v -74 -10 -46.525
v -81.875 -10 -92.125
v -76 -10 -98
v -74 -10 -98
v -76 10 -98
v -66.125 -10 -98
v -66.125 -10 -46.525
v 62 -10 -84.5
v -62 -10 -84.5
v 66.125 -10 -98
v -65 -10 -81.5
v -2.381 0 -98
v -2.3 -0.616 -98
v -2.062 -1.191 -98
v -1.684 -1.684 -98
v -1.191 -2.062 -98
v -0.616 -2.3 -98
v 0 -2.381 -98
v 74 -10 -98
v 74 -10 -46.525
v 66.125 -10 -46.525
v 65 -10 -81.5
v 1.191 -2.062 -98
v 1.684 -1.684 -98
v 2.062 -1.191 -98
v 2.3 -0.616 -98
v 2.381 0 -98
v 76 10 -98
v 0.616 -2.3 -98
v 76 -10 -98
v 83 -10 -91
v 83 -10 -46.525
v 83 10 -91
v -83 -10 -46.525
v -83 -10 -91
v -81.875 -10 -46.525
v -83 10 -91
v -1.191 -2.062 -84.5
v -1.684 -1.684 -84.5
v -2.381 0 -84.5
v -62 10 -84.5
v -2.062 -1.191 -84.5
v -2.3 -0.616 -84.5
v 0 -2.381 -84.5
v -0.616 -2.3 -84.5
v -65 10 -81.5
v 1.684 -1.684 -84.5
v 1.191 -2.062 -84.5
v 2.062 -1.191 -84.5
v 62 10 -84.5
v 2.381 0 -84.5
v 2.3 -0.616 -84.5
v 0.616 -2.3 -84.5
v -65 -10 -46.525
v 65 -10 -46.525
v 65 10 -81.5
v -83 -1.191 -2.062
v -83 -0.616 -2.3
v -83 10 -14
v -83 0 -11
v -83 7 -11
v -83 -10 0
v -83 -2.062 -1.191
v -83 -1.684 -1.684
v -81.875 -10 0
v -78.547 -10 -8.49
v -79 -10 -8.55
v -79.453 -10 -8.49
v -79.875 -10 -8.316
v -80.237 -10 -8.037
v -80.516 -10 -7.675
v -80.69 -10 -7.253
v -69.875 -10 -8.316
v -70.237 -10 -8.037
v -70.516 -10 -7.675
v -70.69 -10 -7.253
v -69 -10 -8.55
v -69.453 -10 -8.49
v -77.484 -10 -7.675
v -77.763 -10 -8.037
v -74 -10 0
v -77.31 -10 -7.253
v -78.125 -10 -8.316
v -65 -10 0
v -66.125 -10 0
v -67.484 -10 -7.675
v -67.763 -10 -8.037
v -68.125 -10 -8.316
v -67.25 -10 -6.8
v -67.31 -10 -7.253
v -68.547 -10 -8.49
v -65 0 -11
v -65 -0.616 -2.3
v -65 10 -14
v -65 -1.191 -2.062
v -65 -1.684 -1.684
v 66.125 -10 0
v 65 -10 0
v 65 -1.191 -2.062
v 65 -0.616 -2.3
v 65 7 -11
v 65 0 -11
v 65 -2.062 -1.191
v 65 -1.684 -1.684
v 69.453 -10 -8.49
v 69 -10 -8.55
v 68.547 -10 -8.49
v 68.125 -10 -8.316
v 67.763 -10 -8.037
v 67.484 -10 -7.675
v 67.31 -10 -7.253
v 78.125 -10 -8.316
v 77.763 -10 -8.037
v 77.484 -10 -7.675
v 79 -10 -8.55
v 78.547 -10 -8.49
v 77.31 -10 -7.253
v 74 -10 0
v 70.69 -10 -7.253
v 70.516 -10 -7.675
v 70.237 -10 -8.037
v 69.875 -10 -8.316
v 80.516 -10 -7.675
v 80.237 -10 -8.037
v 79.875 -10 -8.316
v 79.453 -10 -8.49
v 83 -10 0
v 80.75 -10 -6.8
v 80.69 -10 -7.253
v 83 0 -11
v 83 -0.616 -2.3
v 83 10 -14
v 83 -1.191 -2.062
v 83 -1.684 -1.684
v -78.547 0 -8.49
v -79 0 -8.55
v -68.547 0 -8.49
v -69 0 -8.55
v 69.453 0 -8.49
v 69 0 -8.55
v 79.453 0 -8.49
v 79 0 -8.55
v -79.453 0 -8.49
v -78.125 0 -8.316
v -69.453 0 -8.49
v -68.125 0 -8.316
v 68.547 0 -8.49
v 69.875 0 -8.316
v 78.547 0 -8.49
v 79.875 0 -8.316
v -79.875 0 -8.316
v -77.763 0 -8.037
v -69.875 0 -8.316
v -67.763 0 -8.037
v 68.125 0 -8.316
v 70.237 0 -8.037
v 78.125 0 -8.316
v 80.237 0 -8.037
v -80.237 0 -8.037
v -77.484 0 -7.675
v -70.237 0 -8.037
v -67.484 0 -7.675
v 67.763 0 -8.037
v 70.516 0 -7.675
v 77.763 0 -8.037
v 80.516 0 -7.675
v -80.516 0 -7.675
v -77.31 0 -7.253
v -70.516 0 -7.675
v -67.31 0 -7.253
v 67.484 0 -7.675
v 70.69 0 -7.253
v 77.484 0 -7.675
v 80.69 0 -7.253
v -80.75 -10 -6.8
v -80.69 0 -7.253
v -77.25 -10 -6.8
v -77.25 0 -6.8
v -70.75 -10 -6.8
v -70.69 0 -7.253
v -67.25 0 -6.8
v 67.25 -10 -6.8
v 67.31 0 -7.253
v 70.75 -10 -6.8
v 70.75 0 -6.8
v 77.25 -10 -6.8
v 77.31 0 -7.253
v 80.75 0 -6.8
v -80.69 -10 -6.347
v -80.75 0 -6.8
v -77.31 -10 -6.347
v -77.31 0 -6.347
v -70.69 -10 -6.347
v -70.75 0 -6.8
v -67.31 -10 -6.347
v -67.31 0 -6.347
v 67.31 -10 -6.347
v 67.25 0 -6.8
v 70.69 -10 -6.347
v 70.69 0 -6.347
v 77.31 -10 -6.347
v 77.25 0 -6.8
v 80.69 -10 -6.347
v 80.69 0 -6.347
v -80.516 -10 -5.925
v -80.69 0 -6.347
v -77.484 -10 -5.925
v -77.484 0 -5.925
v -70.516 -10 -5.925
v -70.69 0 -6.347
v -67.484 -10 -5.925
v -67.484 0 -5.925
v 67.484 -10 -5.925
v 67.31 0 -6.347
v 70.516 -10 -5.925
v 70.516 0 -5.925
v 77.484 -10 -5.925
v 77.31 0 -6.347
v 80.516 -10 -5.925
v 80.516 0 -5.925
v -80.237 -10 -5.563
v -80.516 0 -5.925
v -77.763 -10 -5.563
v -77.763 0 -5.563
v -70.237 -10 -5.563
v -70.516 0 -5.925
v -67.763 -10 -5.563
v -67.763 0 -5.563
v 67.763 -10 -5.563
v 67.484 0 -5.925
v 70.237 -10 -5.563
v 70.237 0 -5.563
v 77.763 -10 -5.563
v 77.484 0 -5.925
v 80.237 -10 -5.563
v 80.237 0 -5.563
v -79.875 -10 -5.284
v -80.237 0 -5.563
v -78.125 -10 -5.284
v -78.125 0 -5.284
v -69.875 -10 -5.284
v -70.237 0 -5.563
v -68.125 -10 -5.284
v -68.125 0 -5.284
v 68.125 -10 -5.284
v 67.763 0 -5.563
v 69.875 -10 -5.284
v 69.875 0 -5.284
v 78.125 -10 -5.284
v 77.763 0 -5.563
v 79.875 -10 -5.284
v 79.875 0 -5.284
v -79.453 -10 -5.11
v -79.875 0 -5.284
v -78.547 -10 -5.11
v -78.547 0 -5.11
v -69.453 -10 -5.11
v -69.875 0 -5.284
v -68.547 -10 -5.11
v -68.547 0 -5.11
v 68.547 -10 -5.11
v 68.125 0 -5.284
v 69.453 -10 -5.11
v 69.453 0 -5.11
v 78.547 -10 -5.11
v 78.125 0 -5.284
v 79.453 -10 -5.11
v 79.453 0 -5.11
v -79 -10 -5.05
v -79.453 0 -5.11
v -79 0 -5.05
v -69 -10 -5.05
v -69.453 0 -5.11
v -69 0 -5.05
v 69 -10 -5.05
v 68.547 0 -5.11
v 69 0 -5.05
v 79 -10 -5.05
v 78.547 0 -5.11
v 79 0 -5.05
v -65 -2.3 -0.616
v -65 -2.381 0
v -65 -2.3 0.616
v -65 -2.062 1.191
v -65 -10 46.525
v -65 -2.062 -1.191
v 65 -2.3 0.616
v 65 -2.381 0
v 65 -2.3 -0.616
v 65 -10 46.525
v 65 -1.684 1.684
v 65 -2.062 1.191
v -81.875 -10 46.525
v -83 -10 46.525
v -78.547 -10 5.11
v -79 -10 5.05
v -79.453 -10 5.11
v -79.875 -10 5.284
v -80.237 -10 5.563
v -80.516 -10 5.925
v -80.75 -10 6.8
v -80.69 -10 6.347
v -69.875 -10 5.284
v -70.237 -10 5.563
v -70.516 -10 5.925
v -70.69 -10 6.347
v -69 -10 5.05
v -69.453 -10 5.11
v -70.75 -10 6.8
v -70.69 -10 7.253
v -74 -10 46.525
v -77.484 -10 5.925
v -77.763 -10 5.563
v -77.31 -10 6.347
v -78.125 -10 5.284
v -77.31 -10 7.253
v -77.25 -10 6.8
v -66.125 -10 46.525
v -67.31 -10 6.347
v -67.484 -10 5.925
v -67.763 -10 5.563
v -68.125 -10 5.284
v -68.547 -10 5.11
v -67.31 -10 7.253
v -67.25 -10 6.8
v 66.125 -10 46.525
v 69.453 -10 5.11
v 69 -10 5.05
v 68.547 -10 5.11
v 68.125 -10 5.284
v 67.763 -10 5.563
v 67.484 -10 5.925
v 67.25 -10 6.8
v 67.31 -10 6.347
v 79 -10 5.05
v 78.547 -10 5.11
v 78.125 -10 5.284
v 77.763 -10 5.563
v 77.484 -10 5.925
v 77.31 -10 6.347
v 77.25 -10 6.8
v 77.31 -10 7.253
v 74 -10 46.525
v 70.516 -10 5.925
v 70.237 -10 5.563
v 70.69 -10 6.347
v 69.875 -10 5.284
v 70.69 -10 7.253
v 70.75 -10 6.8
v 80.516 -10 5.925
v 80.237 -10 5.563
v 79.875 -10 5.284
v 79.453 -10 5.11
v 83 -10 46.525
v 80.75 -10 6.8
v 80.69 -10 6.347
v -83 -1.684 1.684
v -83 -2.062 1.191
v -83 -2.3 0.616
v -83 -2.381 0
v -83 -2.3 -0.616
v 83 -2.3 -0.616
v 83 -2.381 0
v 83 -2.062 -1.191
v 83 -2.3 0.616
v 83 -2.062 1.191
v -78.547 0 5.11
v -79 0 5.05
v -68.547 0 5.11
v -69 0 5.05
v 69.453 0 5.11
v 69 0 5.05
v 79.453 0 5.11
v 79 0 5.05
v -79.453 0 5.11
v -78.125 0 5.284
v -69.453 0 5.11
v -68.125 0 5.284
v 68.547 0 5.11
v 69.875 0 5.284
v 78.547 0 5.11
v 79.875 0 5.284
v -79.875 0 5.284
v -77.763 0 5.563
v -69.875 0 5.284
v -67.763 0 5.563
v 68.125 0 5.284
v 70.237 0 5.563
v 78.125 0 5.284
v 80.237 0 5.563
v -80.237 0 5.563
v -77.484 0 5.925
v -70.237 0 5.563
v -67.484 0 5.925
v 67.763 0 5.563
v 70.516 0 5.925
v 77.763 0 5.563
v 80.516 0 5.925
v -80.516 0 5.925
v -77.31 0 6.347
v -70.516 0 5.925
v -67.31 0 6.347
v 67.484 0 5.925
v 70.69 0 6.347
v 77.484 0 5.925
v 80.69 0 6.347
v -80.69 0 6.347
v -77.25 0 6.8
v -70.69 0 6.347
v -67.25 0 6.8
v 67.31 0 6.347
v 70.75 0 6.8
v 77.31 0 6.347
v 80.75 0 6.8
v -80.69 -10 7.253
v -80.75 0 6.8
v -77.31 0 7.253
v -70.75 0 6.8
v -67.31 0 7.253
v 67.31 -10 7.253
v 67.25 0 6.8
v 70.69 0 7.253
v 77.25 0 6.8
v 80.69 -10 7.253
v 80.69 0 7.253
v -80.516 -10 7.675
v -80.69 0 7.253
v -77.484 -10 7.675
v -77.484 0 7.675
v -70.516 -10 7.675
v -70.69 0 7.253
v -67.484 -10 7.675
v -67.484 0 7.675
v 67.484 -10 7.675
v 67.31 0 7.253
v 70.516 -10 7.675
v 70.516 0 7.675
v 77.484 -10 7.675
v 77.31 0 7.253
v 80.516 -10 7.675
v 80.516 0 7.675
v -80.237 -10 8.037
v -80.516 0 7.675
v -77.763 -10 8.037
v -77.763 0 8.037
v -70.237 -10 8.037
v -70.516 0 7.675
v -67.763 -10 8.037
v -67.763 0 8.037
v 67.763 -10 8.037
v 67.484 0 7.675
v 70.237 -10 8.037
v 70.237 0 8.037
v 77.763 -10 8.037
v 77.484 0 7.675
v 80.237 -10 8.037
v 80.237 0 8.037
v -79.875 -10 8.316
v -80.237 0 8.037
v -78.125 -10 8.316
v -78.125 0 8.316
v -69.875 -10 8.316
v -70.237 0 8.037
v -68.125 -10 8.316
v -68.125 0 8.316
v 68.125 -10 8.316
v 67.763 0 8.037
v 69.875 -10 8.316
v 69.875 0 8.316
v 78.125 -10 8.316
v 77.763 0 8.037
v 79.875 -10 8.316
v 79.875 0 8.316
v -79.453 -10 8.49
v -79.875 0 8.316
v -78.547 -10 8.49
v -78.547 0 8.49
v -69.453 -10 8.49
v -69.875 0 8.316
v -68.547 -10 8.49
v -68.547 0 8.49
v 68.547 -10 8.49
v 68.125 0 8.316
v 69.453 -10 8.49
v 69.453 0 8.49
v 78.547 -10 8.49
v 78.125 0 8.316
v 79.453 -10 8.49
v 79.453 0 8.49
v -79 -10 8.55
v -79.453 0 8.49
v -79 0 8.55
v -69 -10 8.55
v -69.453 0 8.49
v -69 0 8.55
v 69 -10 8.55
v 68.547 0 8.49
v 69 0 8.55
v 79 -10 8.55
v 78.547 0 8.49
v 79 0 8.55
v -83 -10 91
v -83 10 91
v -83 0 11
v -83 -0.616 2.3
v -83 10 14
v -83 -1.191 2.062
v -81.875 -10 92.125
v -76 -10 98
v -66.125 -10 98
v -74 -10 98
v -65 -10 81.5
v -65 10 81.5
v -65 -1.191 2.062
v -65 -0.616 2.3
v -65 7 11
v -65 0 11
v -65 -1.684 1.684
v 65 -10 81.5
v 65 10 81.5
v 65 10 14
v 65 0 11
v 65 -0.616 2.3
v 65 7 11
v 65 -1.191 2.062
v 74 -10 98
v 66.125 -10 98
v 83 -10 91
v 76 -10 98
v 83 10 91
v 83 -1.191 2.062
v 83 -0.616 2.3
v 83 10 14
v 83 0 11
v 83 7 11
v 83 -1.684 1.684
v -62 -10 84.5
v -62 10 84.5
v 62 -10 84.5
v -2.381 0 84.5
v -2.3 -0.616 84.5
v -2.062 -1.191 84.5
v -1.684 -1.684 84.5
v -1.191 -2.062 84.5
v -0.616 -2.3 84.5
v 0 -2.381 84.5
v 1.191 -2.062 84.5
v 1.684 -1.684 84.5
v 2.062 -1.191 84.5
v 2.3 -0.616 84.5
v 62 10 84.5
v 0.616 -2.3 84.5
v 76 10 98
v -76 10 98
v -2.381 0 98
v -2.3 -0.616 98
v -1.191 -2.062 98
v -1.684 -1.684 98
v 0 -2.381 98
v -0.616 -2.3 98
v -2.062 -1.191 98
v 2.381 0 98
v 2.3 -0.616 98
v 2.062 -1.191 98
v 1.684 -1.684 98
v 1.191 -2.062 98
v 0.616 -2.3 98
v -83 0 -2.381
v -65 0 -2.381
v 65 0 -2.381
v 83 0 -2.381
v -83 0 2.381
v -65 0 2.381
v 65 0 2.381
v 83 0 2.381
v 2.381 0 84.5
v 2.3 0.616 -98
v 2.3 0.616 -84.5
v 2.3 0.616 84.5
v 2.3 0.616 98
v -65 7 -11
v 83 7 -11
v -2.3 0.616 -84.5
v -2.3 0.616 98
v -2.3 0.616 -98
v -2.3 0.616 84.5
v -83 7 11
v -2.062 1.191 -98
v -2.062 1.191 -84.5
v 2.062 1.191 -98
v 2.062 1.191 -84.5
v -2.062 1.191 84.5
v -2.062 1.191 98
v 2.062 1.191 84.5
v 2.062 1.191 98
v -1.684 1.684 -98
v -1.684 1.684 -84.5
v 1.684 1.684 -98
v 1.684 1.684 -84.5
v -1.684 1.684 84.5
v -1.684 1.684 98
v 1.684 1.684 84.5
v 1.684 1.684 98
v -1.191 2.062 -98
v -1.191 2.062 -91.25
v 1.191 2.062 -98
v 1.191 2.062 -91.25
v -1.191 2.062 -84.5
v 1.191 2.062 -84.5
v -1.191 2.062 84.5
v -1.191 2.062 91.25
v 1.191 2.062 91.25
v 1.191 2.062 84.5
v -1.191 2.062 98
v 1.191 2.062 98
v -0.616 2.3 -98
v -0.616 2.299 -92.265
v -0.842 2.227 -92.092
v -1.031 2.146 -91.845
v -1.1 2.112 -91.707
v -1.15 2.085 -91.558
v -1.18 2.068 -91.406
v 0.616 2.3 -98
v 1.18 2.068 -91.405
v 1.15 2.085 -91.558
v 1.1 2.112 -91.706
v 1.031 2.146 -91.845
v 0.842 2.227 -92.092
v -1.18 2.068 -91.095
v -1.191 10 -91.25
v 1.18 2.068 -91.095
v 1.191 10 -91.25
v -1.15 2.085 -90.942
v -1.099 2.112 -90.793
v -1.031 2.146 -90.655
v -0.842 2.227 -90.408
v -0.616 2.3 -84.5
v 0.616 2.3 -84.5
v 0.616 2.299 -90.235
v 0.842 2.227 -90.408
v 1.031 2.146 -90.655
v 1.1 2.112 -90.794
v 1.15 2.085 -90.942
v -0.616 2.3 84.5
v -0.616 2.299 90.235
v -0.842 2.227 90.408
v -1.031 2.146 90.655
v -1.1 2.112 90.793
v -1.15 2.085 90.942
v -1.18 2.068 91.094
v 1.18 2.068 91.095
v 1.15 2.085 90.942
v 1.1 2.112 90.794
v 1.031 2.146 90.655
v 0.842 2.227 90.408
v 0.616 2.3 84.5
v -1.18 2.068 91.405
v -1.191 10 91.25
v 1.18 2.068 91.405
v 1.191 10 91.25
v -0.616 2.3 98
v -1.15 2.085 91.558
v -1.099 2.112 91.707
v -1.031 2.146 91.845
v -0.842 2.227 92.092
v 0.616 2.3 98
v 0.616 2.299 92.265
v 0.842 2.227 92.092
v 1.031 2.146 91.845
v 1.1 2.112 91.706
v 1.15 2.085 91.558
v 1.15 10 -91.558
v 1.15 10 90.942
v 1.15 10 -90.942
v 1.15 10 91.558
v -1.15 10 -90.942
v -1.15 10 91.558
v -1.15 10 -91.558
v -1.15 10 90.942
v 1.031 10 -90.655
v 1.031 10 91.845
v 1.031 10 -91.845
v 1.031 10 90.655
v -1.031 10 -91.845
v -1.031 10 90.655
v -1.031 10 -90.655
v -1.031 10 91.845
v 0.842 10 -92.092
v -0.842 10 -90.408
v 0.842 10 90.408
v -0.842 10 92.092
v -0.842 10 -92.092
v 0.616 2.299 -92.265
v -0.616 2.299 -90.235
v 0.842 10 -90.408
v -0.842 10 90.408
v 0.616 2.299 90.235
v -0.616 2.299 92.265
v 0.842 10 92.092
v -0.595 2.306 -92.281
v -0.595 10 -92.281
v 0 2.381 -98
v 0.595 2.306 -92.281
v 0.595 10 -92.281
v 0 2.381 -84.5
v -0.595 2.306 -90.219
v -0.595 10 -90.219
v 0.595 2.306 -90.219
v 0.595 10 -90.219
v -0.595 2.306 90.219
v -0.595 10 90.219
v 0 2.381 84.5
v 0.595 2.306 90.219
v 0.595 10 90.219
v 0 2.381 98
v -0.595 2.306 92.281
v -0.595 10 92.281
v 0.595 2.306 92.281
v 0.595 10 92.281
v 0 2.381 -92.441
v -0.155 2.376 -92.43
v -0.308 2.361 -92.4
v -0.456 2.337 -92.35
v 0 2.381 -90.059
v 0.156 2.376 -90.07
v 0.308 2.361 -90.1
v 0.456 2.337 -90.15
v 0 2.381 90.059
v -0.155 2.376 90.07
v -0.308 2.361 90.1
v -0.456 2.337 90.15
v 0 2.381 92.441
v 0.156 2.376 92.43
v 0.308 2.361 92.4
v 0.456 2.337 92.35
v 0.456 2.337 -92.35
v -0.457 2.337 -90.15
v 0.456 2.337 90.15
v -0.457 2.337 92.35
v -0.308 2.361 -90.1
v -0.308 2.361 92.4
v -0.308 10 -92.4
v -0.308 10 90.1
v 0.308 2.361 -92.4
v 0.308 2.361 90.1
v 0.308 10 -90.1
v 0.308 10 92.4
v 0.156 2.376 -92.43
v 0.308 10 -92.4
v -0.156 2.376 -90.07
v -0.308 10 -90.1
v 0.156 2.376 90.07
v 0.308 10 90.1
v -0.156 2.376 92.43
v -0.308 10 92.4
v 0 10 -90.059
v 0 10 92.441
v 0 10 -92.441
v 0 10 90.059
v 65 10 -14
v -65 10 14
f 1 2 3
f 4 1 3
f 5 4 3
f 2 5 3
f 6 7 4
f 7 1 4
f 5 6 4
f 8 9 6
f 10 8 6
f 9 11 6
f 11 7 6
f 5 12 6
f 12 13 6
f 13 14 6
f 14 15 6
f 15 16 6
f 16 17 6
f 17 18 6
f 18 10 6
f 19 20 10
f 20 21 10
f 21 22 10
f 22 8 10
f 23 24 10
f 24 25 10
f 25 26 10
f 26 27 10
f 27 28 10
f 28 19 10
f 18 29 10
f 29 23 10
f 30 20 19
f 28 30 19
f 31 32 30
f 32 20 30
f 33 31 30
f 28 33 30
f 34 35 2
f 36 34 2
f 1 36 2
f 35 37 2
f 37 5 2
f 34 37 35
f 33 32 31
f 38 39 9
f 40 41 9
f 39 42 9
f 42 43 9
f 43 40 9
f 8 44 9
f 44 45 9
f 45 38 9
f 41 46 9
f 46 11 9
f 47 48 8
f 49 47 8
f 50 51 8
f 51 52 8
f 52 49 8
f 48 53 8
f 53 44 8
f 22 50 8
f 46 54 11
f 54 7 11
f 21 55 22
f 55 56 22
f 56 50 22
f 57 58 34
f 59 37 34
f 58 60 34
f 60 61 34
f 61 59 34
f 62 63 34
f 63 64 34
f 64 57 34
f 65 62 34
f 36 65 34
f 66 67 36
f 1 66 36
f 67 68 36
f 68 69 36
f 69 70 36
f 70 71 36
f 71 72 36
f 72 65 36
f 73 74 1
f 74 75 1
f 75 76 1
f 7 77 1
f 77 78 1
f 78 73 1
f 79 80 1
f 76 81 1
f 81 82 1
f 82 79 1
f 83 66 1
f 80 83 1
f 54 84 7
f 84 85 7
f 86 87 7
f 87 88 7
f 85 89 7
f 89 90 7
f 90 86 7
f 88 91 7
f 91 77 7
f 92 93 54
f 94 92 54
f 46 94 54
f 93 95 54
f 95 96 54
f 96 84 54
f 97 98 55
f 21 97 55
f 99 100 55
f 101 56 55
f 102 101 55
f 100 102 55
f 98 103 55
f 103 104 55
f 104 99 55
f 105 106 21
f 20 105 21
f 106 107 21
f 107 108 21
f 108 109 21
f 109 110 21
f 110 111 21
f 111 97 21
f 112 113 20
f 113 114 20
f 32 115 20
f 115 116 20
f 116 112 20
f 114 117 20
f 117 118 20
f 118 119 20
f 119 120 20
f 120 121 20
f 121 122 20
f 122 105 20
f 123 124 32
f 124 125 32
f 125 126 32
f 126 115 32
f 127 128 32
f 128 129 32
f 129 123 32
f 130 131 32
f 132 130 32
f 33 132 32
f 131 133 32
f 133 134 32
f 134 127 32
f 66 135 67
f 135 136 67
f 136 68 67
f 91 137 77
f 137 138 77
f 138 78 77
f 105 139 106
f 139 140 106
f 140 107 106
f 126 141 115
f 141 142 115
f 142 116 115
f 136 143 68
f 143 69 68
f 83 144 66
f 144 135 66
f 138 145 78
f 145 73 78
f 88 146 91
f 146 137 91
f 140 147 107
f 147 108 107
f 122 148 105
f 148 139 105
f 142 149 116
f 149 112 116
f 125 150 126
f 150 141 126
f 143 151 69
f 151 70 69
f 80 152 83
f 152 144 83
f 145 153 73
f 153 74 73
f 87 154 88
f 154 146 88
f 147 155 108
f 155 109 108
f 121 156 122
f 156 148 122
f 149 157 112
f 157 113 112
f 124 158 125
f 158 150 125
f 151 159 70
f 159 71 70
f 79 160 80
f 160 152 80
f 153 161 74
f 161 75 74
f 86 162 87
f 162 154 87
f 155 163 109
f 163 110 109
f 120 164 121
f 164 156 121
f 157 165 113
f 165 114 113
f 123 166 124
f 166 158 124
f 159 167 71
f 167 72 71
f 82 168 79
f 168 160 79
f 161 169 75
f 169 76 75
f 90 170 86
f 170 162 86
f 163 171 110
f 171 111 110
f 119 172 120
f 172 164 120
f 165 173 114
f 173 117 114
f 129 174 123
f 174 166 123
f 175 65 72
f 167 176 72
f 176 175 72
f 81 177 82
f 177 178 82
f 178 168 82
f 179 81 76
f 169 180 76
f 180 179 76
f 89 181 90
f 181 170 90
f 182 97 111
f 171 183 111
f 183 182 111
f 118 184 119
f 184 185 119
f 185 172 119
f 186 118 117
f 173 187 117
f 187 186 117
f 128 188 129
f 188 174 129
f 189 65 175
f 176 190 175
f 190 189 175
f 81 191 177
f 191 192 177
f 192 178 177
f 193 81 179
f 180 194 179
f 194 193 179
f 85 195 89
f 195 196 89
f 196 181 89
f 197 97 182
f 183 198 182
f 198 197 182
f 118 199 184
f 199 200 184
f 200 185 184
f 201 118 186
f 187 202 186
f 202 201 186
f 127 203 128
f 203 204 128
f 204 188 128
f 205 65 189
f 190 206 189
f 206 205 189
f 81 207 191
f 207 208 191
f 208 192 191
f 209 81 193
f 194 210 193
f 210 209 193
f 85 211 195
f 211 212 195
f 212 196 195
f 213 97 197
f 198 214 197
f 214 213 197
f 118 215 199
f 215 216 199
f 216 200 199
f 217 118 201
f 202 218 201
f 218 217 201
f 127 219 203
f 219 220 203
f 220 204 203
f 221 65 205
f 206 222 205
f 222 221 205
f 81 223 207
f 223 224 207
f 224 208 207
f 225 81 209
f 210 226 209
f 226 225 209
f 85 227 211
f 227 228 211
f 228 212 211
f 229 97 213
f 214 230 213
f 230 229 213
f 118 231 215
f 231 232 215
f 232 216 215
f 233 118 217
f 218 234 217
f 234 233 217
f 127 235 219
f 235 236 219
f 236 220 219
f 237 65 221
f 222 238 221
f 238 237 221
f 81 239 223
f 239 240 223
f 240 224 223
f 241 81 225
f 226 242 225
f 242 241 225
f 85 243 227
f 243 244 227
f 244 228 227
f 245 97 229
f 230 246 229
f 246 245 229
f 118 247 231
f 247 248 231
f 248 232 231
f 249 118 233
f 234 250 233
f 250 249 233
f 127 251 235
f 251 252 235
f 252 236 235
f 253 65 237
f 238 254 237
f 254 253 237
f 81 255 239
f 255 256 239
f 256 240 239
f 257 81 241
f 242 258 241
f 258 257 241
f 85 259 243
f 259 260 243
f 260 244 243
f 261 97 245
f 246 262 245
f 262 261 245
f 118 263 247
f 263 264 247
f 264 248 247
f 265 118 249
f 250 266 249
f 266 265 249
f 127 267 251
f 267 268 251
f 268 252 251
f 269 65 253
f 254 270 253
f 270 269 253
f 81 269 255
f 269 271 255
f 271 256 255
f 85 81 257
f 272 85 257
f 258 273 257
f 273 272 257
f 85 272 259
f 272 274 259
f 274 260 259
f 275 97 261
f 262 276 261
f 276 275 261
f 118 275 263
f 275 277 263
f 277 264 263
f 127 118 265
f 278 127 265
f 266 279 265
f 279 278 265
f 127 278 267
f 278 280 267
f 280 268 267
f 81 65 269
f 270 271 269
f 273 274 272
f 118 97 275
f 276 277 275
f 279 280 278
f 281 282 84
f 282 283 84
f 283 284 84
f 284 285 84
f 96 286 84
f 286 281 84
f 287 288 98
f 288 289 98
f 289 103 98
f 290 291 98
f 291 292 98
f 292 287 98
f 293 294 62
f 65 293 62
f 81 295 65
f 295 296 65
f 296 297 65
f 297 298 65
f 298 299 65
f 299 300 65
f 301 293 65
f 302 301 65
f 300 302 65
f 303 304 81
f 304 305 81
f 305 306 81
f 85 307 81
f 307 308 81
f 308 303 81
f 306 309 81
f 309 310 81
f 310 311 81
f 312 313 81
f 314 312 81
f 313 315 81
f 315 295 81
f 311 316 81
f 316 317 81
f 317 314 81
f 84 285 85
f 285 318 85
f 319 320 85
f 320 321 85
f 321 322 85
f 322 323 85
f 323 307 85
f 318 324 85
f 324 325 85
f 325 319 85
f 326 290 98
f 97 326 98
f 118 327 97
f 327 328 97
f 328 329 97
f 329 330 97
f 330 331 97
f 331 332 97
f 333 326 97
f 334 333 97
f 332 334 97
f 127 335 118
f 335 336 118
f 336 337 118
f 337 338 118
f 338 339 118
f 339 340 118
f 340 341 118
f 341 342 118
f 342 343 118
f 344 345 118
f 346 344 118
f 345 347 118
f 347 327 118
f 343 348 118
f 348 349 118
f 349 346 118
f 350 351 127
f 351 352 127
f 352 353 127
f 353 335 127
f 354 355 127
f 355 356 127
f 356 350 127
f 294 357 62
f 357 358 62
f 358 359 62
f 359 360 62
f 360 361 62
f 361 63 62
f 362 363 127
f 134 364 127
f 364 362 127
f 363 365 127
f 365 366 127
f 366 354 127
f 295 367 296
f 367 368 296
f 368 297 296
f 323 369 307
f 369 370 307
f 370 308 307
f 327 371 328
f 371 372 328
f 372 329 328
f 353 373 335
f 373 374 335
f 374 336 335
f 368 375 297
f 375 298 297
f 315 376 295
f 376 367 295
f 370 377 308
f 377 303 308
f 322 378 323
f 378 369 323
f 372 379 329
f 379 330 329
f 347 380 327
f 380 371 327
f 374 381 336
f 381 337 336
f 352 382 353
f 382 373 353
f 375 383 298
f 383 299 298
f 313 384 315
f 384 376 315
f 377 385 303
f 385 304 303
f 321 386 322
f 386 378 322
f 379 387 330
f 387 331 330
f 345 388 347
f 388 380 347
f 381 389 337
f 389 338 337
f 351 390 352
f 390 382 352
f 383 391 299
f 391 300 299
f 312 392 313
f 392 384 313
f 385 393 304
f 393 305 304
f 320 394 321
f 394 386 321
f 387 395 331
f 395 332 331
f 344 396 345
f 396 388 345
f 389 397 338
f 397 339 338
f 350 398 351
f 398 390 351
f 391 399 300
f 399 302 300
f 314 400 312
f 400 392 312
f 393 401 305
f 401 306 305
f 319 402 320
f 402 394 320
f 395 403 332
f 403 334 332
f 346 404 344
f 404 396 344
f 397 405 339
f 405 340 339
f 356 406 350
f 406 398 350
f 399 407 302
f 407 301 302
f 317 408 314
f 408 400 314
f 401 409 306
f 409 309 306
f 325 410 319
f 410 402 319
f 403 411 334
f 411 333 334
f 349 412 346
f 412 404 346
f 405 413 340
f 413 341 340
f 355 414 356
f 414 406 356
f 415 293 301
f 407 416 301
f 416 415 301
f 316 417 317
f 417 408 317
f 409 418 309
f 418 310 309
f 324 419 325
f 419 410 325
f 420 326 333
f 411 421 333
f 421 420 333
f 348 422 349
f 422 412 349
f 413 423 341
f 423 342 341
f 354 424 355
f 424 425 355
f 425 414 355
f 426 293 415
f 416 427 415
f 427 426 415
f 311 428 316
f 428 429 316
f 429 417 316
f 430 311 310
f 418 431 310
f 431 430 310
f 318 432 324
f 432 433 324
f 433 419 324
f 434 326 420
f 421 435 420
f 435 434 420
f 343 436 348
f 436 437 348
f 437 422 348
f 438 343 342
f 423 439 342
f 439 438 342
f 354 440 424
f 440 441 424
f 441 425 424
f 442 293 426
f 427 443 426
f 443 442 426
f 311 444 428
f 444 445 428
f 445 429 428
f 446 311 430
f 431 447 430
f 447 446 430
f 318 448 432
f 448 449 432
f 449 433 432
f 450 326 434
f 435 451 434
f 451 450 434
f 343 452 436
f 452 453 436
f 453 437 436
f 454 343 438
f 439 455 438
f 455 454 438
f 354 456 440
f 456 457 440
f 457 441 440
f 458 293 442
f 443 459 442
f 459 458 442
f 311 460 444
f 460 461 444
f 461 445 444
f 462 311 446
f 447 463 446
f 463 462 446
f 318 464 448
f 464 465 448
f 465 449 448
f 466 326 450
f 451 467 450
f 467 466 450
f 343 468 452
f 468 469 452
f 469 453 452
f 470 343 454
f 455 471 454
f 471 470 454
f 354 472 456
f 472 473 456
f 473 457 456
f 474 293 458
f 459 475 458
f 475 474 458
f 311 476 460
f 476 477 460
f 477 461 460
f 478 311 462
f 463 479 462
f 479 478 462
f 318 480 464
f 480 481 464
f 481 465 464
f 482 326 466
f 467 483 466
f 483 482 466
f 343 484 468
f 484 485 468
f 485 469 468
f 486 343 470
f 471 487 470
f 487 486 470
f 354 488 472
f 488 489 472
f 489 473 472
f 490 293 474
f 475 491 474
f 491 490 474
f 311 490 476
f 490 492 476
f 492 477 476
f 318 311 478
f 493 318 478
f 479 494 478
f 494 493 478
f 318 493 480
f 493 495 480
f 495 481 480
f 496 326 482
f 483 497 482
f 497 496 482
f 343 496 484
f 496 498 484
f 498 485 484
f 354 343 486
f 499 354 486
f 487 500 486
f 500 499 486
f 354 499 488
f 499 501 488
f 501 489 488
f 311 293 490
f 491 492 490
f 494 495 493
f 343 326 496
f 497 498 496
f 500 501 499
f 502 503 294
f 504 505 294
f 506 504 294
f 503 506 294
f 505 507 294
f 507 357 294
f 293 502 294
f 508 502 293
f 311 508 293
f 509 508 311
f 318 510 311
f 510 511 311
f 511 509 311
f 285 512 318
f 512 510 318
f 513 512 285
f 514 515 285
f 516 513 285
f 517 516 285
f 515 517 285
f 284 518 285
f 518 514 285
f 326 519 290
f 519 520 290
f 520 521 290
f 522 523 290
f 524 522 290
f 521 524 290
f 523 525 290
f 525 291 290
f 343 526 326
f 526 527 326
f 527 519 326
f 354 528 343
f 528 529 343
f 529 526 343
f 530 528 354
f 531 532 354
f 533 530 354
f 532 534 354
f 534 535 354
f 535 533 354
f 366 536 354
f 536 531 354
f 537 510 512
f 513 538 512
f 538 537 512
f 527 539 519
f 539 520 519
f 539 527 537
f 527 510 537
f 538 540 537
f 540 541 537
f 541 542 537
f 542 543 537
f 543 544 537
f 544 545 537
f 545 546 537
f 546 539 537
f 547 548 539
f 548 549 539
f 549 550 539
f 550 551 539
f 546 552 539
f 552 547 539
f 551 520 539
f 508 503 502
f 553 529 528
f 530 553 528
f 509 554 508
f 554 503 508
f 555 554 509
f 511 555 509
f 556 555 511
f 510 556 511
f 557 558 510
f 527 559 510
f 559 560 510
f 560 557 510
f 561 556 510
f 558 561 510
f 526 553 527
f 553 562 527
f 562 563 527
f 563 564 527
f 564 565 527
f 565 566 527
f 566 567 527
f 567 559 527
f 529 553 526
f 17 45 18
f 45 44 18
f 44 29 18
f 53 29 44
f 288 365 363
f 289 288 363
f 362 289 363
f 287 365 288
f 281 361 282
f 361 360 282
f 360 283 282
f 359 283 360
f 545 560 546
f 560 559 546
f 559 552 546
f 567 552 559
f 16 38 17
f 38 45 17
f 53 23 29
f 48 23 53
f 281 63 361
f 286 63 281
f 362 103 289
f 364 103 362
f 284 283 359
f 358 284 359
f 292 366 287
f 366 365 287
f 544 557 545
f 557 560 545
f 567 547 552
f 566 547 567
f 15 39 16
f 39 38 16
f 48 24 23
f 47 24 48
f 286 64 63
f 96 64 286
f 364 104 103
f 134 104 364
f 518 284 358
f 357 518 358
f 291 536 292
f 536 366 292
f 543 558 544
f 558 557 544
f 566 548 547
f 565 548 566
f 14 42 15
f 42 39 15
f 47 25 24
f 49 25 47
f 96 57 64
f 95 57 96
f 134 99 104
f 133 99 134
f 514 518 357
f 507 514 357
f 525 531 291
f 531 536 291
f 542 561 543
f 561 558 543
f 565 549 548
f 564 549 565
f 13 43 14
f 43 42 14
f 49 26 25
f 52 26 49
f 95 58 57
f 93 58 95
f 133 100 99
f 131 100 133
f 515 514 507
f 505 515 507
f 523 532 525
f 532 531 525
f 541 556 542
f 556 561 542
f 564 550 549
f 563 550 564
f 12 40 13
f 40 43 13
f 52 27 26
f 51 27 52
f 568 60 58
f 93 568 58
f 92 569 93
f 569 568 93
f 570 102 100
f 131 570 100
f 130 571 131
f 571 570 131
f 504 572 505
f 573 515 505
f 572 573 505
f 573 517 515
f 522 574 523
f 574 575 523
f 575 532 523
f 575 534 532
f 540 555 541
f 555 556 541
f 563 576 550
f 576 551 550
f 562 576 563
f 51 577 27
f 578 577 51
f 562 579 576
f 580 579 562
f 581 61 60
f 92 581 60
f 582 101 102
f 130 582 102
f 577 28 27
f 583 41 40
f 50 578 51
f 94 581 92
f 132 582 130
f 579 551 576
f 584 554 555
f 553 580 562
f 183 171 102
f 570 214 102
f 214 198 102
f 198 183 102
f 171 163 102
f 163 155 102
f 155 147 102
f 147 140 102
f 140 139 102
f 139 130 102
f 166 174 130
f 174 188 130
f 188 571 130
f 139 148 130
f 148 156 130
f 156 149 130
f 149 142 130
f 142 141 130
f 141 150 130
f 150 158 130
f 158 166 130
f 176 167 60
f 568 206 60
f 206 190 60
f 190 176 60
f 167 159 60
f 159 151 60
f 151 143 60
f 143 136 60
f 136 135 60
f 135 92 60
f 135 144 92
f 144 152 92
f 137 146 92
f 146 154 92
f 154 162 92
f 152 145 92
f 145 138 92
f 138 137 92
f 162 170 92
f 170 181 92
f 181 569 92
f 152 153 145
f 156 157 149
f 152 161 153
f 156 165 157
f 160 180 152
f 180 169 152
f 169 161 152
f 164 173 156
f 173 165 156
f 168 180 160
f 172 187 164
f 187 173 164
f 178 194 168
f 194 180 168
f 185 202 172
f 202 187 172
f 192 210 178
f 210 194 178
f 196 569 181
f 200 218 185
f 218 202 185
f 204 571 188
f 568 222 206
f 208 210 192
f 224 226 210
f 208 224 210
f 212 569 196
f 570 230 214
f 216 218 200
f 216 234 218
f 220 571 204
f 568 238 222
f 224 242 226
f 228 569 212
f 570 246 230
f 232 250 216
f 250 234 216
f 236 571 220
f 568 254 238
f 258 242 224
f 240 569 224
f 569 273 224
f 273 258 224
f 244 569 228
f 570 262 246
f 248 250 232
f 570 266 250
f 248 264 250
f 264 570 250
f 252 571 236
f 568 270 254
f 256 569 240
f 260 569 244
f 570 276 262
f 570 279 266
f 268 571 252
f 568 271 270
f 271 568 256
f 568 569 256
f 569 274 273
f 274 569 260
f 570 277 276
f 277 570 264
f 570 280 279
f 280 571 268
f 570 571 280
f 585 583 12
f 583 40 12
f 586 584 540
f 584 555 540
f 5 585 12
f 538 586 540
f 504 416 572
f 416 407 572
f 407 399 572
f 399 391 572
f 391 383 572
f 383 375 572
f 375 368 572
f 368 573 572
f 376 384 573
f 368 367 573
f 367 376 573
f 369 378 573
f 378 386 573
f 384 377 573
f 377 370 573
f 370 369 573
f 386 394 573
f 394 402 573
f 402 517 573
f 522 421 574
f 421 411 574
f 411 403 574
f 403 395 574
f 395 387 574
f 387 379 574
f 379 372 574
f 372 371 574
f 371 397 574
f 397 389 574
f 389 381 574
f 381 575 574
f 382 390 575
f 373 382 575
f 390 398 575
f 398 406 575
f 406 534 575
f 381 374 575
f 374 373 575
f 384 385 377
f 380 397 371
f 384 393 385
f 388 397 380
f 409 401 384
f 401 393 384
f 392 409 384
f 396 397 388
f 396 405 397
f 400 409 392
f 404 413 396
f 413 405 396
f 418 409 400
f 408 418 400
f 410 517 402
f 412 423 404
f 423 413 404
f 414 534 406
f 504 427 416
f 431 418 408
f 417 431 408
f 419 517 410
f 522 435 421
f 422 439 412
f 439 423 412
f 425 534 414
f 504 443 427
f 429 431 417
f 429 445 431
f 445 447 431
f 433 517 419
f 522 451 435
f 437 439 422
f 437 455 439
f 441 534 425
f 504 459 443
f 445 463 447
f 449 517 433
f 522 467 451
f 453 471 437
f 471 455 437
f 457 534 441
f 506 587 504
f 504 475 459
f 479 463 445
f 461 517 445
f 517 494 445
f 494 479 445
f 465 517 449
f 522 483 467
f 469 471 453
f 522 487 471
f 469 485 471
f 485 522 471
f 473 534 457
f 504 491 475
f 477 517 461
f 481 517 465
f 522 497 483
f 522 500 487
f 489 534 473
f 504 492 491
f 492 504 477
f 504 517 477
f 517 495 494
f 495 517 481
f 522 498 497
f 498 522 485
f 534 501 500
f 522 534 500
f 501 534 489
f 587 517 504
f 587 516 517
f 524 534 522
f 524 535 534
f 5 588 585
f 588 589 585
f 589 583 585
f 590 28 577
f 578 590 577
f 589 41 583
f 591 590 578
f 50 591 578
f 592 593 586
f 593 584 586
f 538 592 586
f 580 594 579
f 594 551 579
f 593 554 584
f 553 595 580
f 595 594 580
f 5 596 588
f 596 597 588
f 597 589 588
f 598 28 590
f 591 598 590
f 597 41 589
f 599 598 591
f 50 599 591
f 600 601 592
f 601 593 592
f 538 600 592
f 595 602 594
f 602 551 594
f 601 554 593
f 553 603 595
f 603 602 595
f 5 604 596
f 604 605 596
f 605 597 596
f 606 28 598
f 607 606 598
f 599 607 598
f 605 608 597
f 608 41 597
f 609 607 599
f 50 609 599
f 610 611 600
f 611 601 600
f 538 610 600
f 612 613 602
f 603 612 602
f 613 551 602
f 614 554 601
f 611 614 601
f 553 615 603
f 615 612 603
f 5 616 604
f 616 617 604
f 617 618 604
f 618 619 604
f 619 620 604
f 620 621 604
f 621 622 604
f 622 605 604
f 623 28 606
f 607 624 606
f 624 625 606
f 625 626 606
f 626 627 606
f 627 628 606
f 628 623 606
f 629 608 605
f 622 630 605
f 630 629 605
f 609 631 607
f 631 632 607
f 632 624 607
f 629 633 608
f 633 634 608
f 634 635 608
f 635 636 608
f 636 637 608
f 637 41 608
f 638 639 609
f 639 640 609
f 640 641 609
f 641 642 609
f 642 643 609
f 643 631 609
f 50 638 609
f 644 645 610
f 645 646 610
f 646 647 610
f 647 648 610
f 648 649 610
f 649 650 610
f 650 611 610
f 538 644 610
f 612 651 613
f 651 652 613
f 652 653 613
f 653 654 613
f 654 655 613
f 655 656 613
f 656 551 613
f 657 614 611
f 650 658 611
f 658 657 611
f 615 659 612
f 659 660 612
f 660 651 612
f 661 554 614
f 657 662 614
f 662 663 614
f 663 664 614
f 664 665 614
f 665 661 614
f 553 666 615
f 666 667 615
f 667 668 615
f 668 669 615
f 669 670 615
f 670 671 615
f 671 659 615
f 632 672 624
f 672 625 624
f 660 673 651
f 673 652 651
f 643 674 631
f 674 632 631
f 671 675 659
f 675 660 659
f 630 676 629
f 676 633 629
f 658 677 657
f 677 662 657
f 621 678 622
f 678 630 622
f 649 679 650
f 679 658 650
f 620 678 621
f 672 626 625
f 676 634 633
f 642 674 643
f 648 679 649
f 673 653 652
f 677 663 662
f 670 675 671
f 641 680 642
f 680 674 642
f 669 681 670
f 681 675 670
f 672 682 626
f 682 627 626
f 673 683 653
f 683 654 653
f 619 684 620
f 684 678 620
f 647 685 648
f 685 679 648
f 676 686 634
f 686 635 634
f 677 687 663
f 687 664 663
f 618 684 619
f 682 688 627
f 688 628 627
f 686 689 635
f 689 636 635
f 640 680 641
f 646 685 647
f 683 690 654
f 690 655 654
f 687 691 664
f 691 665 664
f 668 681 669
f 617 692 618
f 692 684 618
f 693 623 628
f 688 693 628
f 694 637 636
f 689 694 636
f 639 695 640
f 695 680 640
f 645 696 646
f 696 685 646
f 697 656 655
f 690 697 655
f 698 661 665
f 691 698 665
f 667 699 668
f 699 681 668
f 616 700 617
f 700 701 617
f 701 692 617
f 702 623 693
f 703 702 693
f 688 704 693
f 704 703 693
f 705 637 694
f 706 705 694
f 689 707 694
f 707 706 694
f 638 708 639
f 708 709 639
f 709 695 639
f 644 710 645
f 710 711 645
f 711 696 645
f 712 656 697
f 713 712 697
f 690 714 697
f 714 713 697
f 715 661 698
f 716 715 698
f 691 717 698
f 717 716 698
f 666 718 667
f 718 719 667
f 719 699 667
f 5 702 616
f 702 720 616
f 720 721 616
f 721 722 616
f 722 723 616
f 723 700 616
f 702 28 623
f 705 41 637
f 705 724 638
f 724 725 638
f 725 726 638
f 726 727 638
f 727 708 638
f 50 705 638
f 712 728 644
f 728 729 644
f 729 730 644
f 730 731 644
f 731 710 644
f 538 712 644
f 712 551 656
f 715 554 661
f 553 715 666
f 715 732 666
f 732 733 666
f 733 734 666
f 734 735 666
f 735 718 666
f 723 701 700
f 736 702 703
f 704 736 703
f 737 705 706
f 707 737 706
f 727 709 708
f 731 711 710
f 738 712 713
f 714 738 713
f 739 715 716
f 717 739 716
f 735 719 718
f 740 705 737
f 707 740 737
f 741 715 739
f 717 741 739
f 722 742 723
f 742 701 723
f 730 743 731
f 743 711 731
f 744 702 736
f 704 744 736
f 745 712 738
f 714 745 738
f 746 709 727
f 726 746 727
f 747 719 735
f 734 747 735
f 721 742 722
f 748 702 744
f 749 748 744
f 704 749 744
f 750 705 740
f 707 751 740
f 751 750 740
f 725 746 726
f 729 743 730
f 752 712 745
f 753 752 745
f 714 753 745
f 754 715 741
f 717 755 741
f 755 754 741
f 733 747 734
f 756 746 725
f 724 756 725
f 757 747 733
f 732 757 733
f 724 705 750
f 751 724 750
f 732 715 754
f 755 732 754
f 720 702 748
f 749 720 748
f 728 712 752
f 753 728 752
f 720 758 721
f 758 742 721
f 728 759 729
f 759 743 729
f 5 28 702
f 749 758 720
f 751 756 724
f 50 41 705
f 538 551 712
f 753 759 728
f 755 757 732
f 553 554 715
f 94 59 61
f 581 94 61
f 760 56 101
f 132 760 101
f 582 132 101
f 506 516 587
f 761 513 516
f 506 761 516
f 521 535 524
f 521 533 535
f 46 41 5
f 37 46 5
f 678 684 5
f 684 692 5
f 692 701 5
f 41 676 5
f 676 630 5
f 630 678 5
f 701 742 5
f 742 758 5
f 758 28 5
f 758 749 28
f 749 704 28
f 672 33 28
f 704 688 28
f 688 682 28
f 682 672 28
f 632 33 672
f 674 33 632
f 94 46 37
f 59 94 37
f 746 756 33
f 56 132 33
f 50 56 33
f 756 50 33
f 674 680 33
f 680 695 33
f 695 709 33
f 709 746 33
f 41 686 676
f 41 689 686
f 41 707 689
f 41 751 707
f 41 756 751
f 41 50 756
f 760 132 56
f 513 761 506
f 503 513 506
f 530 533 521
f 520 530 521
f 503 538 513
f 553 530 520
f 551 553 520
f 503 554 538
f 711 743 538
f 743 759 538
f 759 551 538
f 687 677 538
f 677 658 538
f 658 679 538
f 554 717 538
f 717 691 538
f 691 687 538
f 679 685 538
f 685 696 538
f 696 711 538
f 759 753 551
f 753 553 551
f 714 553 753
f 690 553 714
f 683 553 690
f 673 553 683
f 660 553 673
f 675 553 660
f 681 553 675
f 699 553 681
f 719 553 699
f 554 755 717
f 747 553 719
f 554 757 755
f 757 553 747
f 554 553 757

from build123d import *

# Parameters (mm, degrees)
SKETCH1_W               = 166
SKETCH1_H               = 196
SKETCH1_W_2             = 130
SKETCH1_H_2             = 160
BOSS_EXTRUDE1_DEPTH     = 10
CUT_EXTRUDE1_REACH      = 168
SKETCH2_R               = 2.38125
CUT_EXTRUDE2_DEPTH      = 167
SKETCH5_R               = 2.38125
CUT_EXTRUDE4_DEPTH      = 1
CUT_EXTRUDE4_DEPTH_BACK = 197
CUT_EXTRUDE5_REACH      = 12
SKETCH6_R               = 1.75
CUT_EXTRUDE7_REACH      = 22
SKETCH8_W               = 130
SKETCH8_H               = 4.5
CHAMFER9_SIZE           = 7
CHAMFER10_SIZE          = 3
CUT_EXTRUDE8_REACH      = 22
SKETCH9_R               = 1.190625
CHAMFER11_SIZE          = 3


with BuildPart() as part:
    # Sketch1 → Boss-Extrude1 (new body, symmetric)
    with BuildSketch(Plane(origin=(0, 0, 0), x_dir=(1, 0, 0), z_dir=(0, 1, 0))):
        Rectangle(SKETCH1_W, SKETCH1_H)
        Rectangle(SKETCH1_W_2, SKETCH1_H_2, mode=Mode.SUBTRACT)
    extrude(amount=BOSS_EXTRUDE1_DEPTH, both=True)

    # Sketch2 → Cut-Extrude1 (cut, up to next)
    with BuildSketch(Plane(origin=(83, 0, 0), x_dir=(0, 0, -1), z_dir=(1, 0, 0)), mode=Mode.PRIVATE) as cut_extrude1_sk1:
        Circle(SKETCH2_R)
    cut_extrude1_tool1 = extrude(cut_extrude1_sk1.sketch, amount=-CUT_EXTRUDE1_REACH, mode=Mode.PRIVATE) & part.part
    add(cut_extrude1_tool1.solids().sort_by_distance((83, 0, 0))[0], mode=Mode.SUBTRACT)

    # Sketch3 → Cut-Extrude2 (cut, through all)
    with BuildSketch(Plane.ZY.offset(83)):
        with BuildLine():
            ThreePointArc((-2.38125, 0), (0, 2.38125), (2.38125, 0))
            Line((2.38125, 0), (11, 0))
            Line((11, 0), (11, 10))
            Line((11, 10), (-11, 10))
            Line((-11, 10), (-11, 0))
            Line((-11, 0), (-2.38125, 0))
        make_face()
        with BuildLine():
            ThreePointArc((-2.38125, 0), (0, -2.38125), (2.38125, 0))
            Line((2.38125, 0), (-2.38125, 0))
        make_face()
        with BuildLine():
            Line((-2.38125, 0), (2.38125, 0))
            ThreePointArc((2.38125, 0), (0, 2.38125), (-2.38125, 0))
        make_face()
    extrude(amount=-CUT_EXTRUDE2_DEPTH, mode=Mode.SUBTRACT)

    # Sketch5 → Cut-Extrude4 (cut, two sides)
    with BuildSketch(Plane.XY.offset(98)) as cut_extrude4_sk:
        Circle(SKETCH5_R)
    extrude(amount=CUT_EXTRUDE4_DEPTH, mode=Mode.SUBTRACT)
    extrude(cut_extrude4_sk.sketch, amount=-CUT_EXTRUDE4_DEPTH_BACK, mode=Mode.SUBTRACT)

    # Sketch6 → Cut-Extrude5 (cut, up to next)
    with BuildSketch(Plane(origin=(0, 0, 0), x_dir=(1, 0, 0), z_dir=(0, 1, 0)), mode=Mode.PRIVATE) as cut_extrude5_sk1:
        with Locations((-69, 6.8)):
            Circle(SKETCH6_R)
    cut_extrude5_tool1 = extrude(cut_extrude5_sk1.sketch, amount=-CUT_EXTRUDE5_REACH, mode=Mode.PRIVATE) & part.part
    add(cut_extrude5_tool1.solids().sort_by_distance((-69, 0, -6.8))[0], mode=Mode.SUBTRACT)
    # Sketch6 → Cut-Extrude5 (cut, up to next)
    with BuildSketch(Plane(origin=(0, 0, 0), x_dir=(1, 0, 0), z_dir=(0, 1, 0)), mode=Mode.PRIVATE) as cut_extrude5_sk2:
        with Locations((-69, -6.8)):
            Circle(SKETCH6_R)
    cut_extrude5_tool2 = extrude(cut_extrude5_sk2.sketch, amount=-CUT_EXTRUDE5_REACH, mode=Mode.PRIVATE) & part.part
    add(cut_extrude5_tool2.solids().sort_by_distance((-69, 0, 6.8))[0], mode=Mode.SUBTRACT)
    # Sketch6 → Cut-Extrude5 (cut, up to next)
    with BuildSketch(Plane(origin=(0, 0, 0), x_dir=(1, 0, 0), z_dir=(0, 1, 0)), mode=Mode.PRIVATE) as cut_extrude5_sk3:
        with Locations((-79, -6.8)):
            Circle(SKETCH6_R)
    cut_extrude5_tool3 = extrude(cut_extrude5_sk3.sketch, amount=-CUT_EXTRUDE5_REACH, mode=Mode.PRIVATE) & part.part
    add(cut_extrude5_tool3.solids().sort_by_distance((-79, 0, 6.8))[0], mode=Mode.SUBTRACT)
    # Sketch6 → Cut-Extrude5 (cut, up to next)
    with BuildSketch(Plane(origin=(0, 0, 0), x_dir=(1, 0, 0), z_dir=(0, 1, 0)), mode=Mode.PRIVATE) as cut_extrude5_sk4:
        with Locations((-79, 6.8)):
            Circle(SKETCH6_R)
    cut_extrude5_tool4 = extrude(cut_extrude5_sk4.sketch, amount=-CUT_EXTRUDE5_REACH, mode=Mode.PRIVATE) & part.part
    add(cut_extrude5_tool4.solids().sort_by_distance((-79, 0, -6.8))[0], mode=Mode.SUBTRACT)
    # Sketch6 → Cut-Extrude5 (cut, up to next)
    with BuildSketch(Plane(origin=(0, 0, 0), x_dir=(1, 0, 0), z_dir=(0, 1, 0)), mode=Mode.PRIVATE) as cut_extrude5_sk5:
        with Locations((79, 6.8)):
            Circle(SKETCH6_R)
    cut_extrude5_tool5 = extrude(cut_extrude5_sk5.sketch, amount=-CUT_EXTRUDE5_REACH, mode=Mode.PRIVATE) & part.part
    add(cut_extrude5_tool5.solids().sort_by_distance((79, 0, -6.8))[0], mode=Mode.SUBTRACT)
    # Sketch6 → Cut-Extrude5 (cut, up to next)
    with BuildSketch(Plane(origin=(0, 0, 0), x_dir=(1, 0, 0), z_dir=(0, 1, 0)), mode=Mode.PRIVATE) as cut_extrude5_sk6:
        with Locations((79, -6.8)):
            Circle(SKETCH6_R)
    cut_extrude5_tool6 = extrude(cut_extrude5_sk6.sketch, amount=-CUT_EXTRUDE5_REACH, mode=Mode.PRIVATE) & part.part
    add(cut_extrude5_tool6.solids().sort_by_distance((79, 0, 6.8))[0], mode=Mode.SUBTRACT)
    # Sketch6 → Cut-Extrude5 (cut, up to next)
    with BuildSketch(Plane(origin=(0, 0, 0), x_dir=(1, 0, 0), z_dir=(0, 1, 0)), mode=Mode.PRIVATE) as cut_extrude5_sk7:
        with Locations((69, -6.8)):
            Circle(SKETCH6_R)
    cut_extrude5_tool7 = extrude(cut_extrude5_sk7.sketch, amount=-CUT_EXTRUDE5_REACH, mode=Mode.PRIVATE) & part.part
    add(cut_extrude5_tool7.solids().sort_by_distance((69, 0, 6.8))[0], mode=Mode.SUBTRACT)
    # Sketch6 → Cut-Extrude5 (cut, up to next)
    with BuildSketch(Plane(origin=(0, 0, 0), x_dir=(1, 0, 0), z_dir=(0, 1, 0)), mode=Mode.PRIVATE) as cut_extrude5_sk8:
        with Locations((69, 6.8)):
            Circle(SKETCH6_R)
    cut_extrude5_tool8 = extrude(cut_extrude5_sk8.sketch, amount=-CUT_EXTRUDE5_REACH, mode=Mode.PRIVATE) & part.part
    add(cut_extrude5_tool8.solids().sort_by_distance((69, 0, -6.8))[0], mode=Mode.SUBTRACT)

    # Sketch8 → Cut-Extrude7 (cut, up to next)
    with BuildSketch(Plane(origin=(0, 10, 0), x_dir=(1, 0, 0), z_dir=(0, 1, 0)), mode=Mode.PRIVATE) as cut_extrude7_sk1:
        with Locations((0, 82.25)):
            Rectangle(SKETCH8_W, SKETCH8_H)
    cut_extrude7_tool1 = extrude(cut_extrude7_sk1.sketch, amount=-CUT_EXTRUDE7_REACH, mode=Mode.PRIVATE) & part.part
    add(cut_extrude7_tool1.solids().sort_by_distance((0, 10, -82.25))[0], mode=Mode.SUBTRACT)
    # Sketch8 → Cut-Extrude7 (cut, up to next)
    with BuildSketch(Plane(origin=(0, 10, 0), x_dir=(1, 0, 0), z_dir=(0, 1, 0)), mode=Mode.PRIVATE) as cut_extrude7_sk2:
        with Locations((0, -82.25)):
            Rectangle(SKETCH8_W, SKETCH8_H)
    cut_extrude7_tool2 = extrude(cut_extrude7_sk2.sketch, amount=-CUT_EXTRUDE7_REACH, mode=Mode.PRIVATE) & part.part
    add(cut_extrude7_tool2.solids().sort_by_distance((0, 10, 82.25))[0], mode=Mode.SUBTRACT)

    # Chamfer9
    chamfer9_edges = [part.edges().sort_by_distance(p)[0] for p in [
        (83, 0, -98),
        (83, 0, 98),
        (-83, 0, 98),
        (-83, 0, -98),
    ]]
    chamfer(chamfer9_edges, length=CHAMFER9_SIZE)

    # Chamfer10
    chamfer10_edges = [part.edges().sort_by_distance(p)[0] for p in [
        (-65, 0, -84.5),
        (65, 0, -84.5),
        (65, 0, 84.5),
        (-65, 0, 84.5),
    ]]
    chamfer(chamfer10_edges, length=CHAMFER10_SIZE)

    # Sketch9 → Cut-Extrude8 (cut, up to next)
    with BuildSketch(Plane(origin=(0, 10, 0), x_dir=(1, 0, 0), z_dir=(0, 1, 0)), mode=Mode.PRIVATE) as cut_extrude8_sk1:
        with Locations((0, 91.25)):
            Circle(SKETCH9_R)
    cut_extrude8_tool1 = extrude(cut_extrude8_sk1.sketch, amount=-CUT_EXTRUDE8_REACH, mode=Mode.PRIVATE) & part.part
    add(cut_extrude8_tool1.solids().sort_by_distance((0, 10, -91.25))[0], mode=Mode.SUBTRACT)
    # Sketch9 → Cut-Extrude8 (cut, up to next)
    with BuildSketch(Plane(origin=(0, 10, 0), x_dir=(1, 0, 0), z_dir=(0, 1, 0)), mode=Mode.PRIVATE) as cut_extrude8_sk2:
        with Locations((0, -91.25)):
            Circle(SKETCH9_R)
    cut_extrude8_tool2 = extrude(cut_extrude8_sk2.sketch, amount=-CUT_EXTRUDE8_REACH, mode=Mode.PRIVATE) & part.part
    add(cut_extrude8_tool2.solids().sort_by_distance((0, 10, 91.25))[0], mode=Mode.SUBTRACT)

    # Chamfer11
    chamfer11_edges = [part.edges().sort_by_distance(p)[0] for p in [
        (74, 10, -11),
        (74, 10, 11),
        (-74, 10, -11),
        (-74, 10, 11),
    ]]
    chamfer(chamfer11_edges, length=CHAMFER11_SIZE)


solid = part.part
